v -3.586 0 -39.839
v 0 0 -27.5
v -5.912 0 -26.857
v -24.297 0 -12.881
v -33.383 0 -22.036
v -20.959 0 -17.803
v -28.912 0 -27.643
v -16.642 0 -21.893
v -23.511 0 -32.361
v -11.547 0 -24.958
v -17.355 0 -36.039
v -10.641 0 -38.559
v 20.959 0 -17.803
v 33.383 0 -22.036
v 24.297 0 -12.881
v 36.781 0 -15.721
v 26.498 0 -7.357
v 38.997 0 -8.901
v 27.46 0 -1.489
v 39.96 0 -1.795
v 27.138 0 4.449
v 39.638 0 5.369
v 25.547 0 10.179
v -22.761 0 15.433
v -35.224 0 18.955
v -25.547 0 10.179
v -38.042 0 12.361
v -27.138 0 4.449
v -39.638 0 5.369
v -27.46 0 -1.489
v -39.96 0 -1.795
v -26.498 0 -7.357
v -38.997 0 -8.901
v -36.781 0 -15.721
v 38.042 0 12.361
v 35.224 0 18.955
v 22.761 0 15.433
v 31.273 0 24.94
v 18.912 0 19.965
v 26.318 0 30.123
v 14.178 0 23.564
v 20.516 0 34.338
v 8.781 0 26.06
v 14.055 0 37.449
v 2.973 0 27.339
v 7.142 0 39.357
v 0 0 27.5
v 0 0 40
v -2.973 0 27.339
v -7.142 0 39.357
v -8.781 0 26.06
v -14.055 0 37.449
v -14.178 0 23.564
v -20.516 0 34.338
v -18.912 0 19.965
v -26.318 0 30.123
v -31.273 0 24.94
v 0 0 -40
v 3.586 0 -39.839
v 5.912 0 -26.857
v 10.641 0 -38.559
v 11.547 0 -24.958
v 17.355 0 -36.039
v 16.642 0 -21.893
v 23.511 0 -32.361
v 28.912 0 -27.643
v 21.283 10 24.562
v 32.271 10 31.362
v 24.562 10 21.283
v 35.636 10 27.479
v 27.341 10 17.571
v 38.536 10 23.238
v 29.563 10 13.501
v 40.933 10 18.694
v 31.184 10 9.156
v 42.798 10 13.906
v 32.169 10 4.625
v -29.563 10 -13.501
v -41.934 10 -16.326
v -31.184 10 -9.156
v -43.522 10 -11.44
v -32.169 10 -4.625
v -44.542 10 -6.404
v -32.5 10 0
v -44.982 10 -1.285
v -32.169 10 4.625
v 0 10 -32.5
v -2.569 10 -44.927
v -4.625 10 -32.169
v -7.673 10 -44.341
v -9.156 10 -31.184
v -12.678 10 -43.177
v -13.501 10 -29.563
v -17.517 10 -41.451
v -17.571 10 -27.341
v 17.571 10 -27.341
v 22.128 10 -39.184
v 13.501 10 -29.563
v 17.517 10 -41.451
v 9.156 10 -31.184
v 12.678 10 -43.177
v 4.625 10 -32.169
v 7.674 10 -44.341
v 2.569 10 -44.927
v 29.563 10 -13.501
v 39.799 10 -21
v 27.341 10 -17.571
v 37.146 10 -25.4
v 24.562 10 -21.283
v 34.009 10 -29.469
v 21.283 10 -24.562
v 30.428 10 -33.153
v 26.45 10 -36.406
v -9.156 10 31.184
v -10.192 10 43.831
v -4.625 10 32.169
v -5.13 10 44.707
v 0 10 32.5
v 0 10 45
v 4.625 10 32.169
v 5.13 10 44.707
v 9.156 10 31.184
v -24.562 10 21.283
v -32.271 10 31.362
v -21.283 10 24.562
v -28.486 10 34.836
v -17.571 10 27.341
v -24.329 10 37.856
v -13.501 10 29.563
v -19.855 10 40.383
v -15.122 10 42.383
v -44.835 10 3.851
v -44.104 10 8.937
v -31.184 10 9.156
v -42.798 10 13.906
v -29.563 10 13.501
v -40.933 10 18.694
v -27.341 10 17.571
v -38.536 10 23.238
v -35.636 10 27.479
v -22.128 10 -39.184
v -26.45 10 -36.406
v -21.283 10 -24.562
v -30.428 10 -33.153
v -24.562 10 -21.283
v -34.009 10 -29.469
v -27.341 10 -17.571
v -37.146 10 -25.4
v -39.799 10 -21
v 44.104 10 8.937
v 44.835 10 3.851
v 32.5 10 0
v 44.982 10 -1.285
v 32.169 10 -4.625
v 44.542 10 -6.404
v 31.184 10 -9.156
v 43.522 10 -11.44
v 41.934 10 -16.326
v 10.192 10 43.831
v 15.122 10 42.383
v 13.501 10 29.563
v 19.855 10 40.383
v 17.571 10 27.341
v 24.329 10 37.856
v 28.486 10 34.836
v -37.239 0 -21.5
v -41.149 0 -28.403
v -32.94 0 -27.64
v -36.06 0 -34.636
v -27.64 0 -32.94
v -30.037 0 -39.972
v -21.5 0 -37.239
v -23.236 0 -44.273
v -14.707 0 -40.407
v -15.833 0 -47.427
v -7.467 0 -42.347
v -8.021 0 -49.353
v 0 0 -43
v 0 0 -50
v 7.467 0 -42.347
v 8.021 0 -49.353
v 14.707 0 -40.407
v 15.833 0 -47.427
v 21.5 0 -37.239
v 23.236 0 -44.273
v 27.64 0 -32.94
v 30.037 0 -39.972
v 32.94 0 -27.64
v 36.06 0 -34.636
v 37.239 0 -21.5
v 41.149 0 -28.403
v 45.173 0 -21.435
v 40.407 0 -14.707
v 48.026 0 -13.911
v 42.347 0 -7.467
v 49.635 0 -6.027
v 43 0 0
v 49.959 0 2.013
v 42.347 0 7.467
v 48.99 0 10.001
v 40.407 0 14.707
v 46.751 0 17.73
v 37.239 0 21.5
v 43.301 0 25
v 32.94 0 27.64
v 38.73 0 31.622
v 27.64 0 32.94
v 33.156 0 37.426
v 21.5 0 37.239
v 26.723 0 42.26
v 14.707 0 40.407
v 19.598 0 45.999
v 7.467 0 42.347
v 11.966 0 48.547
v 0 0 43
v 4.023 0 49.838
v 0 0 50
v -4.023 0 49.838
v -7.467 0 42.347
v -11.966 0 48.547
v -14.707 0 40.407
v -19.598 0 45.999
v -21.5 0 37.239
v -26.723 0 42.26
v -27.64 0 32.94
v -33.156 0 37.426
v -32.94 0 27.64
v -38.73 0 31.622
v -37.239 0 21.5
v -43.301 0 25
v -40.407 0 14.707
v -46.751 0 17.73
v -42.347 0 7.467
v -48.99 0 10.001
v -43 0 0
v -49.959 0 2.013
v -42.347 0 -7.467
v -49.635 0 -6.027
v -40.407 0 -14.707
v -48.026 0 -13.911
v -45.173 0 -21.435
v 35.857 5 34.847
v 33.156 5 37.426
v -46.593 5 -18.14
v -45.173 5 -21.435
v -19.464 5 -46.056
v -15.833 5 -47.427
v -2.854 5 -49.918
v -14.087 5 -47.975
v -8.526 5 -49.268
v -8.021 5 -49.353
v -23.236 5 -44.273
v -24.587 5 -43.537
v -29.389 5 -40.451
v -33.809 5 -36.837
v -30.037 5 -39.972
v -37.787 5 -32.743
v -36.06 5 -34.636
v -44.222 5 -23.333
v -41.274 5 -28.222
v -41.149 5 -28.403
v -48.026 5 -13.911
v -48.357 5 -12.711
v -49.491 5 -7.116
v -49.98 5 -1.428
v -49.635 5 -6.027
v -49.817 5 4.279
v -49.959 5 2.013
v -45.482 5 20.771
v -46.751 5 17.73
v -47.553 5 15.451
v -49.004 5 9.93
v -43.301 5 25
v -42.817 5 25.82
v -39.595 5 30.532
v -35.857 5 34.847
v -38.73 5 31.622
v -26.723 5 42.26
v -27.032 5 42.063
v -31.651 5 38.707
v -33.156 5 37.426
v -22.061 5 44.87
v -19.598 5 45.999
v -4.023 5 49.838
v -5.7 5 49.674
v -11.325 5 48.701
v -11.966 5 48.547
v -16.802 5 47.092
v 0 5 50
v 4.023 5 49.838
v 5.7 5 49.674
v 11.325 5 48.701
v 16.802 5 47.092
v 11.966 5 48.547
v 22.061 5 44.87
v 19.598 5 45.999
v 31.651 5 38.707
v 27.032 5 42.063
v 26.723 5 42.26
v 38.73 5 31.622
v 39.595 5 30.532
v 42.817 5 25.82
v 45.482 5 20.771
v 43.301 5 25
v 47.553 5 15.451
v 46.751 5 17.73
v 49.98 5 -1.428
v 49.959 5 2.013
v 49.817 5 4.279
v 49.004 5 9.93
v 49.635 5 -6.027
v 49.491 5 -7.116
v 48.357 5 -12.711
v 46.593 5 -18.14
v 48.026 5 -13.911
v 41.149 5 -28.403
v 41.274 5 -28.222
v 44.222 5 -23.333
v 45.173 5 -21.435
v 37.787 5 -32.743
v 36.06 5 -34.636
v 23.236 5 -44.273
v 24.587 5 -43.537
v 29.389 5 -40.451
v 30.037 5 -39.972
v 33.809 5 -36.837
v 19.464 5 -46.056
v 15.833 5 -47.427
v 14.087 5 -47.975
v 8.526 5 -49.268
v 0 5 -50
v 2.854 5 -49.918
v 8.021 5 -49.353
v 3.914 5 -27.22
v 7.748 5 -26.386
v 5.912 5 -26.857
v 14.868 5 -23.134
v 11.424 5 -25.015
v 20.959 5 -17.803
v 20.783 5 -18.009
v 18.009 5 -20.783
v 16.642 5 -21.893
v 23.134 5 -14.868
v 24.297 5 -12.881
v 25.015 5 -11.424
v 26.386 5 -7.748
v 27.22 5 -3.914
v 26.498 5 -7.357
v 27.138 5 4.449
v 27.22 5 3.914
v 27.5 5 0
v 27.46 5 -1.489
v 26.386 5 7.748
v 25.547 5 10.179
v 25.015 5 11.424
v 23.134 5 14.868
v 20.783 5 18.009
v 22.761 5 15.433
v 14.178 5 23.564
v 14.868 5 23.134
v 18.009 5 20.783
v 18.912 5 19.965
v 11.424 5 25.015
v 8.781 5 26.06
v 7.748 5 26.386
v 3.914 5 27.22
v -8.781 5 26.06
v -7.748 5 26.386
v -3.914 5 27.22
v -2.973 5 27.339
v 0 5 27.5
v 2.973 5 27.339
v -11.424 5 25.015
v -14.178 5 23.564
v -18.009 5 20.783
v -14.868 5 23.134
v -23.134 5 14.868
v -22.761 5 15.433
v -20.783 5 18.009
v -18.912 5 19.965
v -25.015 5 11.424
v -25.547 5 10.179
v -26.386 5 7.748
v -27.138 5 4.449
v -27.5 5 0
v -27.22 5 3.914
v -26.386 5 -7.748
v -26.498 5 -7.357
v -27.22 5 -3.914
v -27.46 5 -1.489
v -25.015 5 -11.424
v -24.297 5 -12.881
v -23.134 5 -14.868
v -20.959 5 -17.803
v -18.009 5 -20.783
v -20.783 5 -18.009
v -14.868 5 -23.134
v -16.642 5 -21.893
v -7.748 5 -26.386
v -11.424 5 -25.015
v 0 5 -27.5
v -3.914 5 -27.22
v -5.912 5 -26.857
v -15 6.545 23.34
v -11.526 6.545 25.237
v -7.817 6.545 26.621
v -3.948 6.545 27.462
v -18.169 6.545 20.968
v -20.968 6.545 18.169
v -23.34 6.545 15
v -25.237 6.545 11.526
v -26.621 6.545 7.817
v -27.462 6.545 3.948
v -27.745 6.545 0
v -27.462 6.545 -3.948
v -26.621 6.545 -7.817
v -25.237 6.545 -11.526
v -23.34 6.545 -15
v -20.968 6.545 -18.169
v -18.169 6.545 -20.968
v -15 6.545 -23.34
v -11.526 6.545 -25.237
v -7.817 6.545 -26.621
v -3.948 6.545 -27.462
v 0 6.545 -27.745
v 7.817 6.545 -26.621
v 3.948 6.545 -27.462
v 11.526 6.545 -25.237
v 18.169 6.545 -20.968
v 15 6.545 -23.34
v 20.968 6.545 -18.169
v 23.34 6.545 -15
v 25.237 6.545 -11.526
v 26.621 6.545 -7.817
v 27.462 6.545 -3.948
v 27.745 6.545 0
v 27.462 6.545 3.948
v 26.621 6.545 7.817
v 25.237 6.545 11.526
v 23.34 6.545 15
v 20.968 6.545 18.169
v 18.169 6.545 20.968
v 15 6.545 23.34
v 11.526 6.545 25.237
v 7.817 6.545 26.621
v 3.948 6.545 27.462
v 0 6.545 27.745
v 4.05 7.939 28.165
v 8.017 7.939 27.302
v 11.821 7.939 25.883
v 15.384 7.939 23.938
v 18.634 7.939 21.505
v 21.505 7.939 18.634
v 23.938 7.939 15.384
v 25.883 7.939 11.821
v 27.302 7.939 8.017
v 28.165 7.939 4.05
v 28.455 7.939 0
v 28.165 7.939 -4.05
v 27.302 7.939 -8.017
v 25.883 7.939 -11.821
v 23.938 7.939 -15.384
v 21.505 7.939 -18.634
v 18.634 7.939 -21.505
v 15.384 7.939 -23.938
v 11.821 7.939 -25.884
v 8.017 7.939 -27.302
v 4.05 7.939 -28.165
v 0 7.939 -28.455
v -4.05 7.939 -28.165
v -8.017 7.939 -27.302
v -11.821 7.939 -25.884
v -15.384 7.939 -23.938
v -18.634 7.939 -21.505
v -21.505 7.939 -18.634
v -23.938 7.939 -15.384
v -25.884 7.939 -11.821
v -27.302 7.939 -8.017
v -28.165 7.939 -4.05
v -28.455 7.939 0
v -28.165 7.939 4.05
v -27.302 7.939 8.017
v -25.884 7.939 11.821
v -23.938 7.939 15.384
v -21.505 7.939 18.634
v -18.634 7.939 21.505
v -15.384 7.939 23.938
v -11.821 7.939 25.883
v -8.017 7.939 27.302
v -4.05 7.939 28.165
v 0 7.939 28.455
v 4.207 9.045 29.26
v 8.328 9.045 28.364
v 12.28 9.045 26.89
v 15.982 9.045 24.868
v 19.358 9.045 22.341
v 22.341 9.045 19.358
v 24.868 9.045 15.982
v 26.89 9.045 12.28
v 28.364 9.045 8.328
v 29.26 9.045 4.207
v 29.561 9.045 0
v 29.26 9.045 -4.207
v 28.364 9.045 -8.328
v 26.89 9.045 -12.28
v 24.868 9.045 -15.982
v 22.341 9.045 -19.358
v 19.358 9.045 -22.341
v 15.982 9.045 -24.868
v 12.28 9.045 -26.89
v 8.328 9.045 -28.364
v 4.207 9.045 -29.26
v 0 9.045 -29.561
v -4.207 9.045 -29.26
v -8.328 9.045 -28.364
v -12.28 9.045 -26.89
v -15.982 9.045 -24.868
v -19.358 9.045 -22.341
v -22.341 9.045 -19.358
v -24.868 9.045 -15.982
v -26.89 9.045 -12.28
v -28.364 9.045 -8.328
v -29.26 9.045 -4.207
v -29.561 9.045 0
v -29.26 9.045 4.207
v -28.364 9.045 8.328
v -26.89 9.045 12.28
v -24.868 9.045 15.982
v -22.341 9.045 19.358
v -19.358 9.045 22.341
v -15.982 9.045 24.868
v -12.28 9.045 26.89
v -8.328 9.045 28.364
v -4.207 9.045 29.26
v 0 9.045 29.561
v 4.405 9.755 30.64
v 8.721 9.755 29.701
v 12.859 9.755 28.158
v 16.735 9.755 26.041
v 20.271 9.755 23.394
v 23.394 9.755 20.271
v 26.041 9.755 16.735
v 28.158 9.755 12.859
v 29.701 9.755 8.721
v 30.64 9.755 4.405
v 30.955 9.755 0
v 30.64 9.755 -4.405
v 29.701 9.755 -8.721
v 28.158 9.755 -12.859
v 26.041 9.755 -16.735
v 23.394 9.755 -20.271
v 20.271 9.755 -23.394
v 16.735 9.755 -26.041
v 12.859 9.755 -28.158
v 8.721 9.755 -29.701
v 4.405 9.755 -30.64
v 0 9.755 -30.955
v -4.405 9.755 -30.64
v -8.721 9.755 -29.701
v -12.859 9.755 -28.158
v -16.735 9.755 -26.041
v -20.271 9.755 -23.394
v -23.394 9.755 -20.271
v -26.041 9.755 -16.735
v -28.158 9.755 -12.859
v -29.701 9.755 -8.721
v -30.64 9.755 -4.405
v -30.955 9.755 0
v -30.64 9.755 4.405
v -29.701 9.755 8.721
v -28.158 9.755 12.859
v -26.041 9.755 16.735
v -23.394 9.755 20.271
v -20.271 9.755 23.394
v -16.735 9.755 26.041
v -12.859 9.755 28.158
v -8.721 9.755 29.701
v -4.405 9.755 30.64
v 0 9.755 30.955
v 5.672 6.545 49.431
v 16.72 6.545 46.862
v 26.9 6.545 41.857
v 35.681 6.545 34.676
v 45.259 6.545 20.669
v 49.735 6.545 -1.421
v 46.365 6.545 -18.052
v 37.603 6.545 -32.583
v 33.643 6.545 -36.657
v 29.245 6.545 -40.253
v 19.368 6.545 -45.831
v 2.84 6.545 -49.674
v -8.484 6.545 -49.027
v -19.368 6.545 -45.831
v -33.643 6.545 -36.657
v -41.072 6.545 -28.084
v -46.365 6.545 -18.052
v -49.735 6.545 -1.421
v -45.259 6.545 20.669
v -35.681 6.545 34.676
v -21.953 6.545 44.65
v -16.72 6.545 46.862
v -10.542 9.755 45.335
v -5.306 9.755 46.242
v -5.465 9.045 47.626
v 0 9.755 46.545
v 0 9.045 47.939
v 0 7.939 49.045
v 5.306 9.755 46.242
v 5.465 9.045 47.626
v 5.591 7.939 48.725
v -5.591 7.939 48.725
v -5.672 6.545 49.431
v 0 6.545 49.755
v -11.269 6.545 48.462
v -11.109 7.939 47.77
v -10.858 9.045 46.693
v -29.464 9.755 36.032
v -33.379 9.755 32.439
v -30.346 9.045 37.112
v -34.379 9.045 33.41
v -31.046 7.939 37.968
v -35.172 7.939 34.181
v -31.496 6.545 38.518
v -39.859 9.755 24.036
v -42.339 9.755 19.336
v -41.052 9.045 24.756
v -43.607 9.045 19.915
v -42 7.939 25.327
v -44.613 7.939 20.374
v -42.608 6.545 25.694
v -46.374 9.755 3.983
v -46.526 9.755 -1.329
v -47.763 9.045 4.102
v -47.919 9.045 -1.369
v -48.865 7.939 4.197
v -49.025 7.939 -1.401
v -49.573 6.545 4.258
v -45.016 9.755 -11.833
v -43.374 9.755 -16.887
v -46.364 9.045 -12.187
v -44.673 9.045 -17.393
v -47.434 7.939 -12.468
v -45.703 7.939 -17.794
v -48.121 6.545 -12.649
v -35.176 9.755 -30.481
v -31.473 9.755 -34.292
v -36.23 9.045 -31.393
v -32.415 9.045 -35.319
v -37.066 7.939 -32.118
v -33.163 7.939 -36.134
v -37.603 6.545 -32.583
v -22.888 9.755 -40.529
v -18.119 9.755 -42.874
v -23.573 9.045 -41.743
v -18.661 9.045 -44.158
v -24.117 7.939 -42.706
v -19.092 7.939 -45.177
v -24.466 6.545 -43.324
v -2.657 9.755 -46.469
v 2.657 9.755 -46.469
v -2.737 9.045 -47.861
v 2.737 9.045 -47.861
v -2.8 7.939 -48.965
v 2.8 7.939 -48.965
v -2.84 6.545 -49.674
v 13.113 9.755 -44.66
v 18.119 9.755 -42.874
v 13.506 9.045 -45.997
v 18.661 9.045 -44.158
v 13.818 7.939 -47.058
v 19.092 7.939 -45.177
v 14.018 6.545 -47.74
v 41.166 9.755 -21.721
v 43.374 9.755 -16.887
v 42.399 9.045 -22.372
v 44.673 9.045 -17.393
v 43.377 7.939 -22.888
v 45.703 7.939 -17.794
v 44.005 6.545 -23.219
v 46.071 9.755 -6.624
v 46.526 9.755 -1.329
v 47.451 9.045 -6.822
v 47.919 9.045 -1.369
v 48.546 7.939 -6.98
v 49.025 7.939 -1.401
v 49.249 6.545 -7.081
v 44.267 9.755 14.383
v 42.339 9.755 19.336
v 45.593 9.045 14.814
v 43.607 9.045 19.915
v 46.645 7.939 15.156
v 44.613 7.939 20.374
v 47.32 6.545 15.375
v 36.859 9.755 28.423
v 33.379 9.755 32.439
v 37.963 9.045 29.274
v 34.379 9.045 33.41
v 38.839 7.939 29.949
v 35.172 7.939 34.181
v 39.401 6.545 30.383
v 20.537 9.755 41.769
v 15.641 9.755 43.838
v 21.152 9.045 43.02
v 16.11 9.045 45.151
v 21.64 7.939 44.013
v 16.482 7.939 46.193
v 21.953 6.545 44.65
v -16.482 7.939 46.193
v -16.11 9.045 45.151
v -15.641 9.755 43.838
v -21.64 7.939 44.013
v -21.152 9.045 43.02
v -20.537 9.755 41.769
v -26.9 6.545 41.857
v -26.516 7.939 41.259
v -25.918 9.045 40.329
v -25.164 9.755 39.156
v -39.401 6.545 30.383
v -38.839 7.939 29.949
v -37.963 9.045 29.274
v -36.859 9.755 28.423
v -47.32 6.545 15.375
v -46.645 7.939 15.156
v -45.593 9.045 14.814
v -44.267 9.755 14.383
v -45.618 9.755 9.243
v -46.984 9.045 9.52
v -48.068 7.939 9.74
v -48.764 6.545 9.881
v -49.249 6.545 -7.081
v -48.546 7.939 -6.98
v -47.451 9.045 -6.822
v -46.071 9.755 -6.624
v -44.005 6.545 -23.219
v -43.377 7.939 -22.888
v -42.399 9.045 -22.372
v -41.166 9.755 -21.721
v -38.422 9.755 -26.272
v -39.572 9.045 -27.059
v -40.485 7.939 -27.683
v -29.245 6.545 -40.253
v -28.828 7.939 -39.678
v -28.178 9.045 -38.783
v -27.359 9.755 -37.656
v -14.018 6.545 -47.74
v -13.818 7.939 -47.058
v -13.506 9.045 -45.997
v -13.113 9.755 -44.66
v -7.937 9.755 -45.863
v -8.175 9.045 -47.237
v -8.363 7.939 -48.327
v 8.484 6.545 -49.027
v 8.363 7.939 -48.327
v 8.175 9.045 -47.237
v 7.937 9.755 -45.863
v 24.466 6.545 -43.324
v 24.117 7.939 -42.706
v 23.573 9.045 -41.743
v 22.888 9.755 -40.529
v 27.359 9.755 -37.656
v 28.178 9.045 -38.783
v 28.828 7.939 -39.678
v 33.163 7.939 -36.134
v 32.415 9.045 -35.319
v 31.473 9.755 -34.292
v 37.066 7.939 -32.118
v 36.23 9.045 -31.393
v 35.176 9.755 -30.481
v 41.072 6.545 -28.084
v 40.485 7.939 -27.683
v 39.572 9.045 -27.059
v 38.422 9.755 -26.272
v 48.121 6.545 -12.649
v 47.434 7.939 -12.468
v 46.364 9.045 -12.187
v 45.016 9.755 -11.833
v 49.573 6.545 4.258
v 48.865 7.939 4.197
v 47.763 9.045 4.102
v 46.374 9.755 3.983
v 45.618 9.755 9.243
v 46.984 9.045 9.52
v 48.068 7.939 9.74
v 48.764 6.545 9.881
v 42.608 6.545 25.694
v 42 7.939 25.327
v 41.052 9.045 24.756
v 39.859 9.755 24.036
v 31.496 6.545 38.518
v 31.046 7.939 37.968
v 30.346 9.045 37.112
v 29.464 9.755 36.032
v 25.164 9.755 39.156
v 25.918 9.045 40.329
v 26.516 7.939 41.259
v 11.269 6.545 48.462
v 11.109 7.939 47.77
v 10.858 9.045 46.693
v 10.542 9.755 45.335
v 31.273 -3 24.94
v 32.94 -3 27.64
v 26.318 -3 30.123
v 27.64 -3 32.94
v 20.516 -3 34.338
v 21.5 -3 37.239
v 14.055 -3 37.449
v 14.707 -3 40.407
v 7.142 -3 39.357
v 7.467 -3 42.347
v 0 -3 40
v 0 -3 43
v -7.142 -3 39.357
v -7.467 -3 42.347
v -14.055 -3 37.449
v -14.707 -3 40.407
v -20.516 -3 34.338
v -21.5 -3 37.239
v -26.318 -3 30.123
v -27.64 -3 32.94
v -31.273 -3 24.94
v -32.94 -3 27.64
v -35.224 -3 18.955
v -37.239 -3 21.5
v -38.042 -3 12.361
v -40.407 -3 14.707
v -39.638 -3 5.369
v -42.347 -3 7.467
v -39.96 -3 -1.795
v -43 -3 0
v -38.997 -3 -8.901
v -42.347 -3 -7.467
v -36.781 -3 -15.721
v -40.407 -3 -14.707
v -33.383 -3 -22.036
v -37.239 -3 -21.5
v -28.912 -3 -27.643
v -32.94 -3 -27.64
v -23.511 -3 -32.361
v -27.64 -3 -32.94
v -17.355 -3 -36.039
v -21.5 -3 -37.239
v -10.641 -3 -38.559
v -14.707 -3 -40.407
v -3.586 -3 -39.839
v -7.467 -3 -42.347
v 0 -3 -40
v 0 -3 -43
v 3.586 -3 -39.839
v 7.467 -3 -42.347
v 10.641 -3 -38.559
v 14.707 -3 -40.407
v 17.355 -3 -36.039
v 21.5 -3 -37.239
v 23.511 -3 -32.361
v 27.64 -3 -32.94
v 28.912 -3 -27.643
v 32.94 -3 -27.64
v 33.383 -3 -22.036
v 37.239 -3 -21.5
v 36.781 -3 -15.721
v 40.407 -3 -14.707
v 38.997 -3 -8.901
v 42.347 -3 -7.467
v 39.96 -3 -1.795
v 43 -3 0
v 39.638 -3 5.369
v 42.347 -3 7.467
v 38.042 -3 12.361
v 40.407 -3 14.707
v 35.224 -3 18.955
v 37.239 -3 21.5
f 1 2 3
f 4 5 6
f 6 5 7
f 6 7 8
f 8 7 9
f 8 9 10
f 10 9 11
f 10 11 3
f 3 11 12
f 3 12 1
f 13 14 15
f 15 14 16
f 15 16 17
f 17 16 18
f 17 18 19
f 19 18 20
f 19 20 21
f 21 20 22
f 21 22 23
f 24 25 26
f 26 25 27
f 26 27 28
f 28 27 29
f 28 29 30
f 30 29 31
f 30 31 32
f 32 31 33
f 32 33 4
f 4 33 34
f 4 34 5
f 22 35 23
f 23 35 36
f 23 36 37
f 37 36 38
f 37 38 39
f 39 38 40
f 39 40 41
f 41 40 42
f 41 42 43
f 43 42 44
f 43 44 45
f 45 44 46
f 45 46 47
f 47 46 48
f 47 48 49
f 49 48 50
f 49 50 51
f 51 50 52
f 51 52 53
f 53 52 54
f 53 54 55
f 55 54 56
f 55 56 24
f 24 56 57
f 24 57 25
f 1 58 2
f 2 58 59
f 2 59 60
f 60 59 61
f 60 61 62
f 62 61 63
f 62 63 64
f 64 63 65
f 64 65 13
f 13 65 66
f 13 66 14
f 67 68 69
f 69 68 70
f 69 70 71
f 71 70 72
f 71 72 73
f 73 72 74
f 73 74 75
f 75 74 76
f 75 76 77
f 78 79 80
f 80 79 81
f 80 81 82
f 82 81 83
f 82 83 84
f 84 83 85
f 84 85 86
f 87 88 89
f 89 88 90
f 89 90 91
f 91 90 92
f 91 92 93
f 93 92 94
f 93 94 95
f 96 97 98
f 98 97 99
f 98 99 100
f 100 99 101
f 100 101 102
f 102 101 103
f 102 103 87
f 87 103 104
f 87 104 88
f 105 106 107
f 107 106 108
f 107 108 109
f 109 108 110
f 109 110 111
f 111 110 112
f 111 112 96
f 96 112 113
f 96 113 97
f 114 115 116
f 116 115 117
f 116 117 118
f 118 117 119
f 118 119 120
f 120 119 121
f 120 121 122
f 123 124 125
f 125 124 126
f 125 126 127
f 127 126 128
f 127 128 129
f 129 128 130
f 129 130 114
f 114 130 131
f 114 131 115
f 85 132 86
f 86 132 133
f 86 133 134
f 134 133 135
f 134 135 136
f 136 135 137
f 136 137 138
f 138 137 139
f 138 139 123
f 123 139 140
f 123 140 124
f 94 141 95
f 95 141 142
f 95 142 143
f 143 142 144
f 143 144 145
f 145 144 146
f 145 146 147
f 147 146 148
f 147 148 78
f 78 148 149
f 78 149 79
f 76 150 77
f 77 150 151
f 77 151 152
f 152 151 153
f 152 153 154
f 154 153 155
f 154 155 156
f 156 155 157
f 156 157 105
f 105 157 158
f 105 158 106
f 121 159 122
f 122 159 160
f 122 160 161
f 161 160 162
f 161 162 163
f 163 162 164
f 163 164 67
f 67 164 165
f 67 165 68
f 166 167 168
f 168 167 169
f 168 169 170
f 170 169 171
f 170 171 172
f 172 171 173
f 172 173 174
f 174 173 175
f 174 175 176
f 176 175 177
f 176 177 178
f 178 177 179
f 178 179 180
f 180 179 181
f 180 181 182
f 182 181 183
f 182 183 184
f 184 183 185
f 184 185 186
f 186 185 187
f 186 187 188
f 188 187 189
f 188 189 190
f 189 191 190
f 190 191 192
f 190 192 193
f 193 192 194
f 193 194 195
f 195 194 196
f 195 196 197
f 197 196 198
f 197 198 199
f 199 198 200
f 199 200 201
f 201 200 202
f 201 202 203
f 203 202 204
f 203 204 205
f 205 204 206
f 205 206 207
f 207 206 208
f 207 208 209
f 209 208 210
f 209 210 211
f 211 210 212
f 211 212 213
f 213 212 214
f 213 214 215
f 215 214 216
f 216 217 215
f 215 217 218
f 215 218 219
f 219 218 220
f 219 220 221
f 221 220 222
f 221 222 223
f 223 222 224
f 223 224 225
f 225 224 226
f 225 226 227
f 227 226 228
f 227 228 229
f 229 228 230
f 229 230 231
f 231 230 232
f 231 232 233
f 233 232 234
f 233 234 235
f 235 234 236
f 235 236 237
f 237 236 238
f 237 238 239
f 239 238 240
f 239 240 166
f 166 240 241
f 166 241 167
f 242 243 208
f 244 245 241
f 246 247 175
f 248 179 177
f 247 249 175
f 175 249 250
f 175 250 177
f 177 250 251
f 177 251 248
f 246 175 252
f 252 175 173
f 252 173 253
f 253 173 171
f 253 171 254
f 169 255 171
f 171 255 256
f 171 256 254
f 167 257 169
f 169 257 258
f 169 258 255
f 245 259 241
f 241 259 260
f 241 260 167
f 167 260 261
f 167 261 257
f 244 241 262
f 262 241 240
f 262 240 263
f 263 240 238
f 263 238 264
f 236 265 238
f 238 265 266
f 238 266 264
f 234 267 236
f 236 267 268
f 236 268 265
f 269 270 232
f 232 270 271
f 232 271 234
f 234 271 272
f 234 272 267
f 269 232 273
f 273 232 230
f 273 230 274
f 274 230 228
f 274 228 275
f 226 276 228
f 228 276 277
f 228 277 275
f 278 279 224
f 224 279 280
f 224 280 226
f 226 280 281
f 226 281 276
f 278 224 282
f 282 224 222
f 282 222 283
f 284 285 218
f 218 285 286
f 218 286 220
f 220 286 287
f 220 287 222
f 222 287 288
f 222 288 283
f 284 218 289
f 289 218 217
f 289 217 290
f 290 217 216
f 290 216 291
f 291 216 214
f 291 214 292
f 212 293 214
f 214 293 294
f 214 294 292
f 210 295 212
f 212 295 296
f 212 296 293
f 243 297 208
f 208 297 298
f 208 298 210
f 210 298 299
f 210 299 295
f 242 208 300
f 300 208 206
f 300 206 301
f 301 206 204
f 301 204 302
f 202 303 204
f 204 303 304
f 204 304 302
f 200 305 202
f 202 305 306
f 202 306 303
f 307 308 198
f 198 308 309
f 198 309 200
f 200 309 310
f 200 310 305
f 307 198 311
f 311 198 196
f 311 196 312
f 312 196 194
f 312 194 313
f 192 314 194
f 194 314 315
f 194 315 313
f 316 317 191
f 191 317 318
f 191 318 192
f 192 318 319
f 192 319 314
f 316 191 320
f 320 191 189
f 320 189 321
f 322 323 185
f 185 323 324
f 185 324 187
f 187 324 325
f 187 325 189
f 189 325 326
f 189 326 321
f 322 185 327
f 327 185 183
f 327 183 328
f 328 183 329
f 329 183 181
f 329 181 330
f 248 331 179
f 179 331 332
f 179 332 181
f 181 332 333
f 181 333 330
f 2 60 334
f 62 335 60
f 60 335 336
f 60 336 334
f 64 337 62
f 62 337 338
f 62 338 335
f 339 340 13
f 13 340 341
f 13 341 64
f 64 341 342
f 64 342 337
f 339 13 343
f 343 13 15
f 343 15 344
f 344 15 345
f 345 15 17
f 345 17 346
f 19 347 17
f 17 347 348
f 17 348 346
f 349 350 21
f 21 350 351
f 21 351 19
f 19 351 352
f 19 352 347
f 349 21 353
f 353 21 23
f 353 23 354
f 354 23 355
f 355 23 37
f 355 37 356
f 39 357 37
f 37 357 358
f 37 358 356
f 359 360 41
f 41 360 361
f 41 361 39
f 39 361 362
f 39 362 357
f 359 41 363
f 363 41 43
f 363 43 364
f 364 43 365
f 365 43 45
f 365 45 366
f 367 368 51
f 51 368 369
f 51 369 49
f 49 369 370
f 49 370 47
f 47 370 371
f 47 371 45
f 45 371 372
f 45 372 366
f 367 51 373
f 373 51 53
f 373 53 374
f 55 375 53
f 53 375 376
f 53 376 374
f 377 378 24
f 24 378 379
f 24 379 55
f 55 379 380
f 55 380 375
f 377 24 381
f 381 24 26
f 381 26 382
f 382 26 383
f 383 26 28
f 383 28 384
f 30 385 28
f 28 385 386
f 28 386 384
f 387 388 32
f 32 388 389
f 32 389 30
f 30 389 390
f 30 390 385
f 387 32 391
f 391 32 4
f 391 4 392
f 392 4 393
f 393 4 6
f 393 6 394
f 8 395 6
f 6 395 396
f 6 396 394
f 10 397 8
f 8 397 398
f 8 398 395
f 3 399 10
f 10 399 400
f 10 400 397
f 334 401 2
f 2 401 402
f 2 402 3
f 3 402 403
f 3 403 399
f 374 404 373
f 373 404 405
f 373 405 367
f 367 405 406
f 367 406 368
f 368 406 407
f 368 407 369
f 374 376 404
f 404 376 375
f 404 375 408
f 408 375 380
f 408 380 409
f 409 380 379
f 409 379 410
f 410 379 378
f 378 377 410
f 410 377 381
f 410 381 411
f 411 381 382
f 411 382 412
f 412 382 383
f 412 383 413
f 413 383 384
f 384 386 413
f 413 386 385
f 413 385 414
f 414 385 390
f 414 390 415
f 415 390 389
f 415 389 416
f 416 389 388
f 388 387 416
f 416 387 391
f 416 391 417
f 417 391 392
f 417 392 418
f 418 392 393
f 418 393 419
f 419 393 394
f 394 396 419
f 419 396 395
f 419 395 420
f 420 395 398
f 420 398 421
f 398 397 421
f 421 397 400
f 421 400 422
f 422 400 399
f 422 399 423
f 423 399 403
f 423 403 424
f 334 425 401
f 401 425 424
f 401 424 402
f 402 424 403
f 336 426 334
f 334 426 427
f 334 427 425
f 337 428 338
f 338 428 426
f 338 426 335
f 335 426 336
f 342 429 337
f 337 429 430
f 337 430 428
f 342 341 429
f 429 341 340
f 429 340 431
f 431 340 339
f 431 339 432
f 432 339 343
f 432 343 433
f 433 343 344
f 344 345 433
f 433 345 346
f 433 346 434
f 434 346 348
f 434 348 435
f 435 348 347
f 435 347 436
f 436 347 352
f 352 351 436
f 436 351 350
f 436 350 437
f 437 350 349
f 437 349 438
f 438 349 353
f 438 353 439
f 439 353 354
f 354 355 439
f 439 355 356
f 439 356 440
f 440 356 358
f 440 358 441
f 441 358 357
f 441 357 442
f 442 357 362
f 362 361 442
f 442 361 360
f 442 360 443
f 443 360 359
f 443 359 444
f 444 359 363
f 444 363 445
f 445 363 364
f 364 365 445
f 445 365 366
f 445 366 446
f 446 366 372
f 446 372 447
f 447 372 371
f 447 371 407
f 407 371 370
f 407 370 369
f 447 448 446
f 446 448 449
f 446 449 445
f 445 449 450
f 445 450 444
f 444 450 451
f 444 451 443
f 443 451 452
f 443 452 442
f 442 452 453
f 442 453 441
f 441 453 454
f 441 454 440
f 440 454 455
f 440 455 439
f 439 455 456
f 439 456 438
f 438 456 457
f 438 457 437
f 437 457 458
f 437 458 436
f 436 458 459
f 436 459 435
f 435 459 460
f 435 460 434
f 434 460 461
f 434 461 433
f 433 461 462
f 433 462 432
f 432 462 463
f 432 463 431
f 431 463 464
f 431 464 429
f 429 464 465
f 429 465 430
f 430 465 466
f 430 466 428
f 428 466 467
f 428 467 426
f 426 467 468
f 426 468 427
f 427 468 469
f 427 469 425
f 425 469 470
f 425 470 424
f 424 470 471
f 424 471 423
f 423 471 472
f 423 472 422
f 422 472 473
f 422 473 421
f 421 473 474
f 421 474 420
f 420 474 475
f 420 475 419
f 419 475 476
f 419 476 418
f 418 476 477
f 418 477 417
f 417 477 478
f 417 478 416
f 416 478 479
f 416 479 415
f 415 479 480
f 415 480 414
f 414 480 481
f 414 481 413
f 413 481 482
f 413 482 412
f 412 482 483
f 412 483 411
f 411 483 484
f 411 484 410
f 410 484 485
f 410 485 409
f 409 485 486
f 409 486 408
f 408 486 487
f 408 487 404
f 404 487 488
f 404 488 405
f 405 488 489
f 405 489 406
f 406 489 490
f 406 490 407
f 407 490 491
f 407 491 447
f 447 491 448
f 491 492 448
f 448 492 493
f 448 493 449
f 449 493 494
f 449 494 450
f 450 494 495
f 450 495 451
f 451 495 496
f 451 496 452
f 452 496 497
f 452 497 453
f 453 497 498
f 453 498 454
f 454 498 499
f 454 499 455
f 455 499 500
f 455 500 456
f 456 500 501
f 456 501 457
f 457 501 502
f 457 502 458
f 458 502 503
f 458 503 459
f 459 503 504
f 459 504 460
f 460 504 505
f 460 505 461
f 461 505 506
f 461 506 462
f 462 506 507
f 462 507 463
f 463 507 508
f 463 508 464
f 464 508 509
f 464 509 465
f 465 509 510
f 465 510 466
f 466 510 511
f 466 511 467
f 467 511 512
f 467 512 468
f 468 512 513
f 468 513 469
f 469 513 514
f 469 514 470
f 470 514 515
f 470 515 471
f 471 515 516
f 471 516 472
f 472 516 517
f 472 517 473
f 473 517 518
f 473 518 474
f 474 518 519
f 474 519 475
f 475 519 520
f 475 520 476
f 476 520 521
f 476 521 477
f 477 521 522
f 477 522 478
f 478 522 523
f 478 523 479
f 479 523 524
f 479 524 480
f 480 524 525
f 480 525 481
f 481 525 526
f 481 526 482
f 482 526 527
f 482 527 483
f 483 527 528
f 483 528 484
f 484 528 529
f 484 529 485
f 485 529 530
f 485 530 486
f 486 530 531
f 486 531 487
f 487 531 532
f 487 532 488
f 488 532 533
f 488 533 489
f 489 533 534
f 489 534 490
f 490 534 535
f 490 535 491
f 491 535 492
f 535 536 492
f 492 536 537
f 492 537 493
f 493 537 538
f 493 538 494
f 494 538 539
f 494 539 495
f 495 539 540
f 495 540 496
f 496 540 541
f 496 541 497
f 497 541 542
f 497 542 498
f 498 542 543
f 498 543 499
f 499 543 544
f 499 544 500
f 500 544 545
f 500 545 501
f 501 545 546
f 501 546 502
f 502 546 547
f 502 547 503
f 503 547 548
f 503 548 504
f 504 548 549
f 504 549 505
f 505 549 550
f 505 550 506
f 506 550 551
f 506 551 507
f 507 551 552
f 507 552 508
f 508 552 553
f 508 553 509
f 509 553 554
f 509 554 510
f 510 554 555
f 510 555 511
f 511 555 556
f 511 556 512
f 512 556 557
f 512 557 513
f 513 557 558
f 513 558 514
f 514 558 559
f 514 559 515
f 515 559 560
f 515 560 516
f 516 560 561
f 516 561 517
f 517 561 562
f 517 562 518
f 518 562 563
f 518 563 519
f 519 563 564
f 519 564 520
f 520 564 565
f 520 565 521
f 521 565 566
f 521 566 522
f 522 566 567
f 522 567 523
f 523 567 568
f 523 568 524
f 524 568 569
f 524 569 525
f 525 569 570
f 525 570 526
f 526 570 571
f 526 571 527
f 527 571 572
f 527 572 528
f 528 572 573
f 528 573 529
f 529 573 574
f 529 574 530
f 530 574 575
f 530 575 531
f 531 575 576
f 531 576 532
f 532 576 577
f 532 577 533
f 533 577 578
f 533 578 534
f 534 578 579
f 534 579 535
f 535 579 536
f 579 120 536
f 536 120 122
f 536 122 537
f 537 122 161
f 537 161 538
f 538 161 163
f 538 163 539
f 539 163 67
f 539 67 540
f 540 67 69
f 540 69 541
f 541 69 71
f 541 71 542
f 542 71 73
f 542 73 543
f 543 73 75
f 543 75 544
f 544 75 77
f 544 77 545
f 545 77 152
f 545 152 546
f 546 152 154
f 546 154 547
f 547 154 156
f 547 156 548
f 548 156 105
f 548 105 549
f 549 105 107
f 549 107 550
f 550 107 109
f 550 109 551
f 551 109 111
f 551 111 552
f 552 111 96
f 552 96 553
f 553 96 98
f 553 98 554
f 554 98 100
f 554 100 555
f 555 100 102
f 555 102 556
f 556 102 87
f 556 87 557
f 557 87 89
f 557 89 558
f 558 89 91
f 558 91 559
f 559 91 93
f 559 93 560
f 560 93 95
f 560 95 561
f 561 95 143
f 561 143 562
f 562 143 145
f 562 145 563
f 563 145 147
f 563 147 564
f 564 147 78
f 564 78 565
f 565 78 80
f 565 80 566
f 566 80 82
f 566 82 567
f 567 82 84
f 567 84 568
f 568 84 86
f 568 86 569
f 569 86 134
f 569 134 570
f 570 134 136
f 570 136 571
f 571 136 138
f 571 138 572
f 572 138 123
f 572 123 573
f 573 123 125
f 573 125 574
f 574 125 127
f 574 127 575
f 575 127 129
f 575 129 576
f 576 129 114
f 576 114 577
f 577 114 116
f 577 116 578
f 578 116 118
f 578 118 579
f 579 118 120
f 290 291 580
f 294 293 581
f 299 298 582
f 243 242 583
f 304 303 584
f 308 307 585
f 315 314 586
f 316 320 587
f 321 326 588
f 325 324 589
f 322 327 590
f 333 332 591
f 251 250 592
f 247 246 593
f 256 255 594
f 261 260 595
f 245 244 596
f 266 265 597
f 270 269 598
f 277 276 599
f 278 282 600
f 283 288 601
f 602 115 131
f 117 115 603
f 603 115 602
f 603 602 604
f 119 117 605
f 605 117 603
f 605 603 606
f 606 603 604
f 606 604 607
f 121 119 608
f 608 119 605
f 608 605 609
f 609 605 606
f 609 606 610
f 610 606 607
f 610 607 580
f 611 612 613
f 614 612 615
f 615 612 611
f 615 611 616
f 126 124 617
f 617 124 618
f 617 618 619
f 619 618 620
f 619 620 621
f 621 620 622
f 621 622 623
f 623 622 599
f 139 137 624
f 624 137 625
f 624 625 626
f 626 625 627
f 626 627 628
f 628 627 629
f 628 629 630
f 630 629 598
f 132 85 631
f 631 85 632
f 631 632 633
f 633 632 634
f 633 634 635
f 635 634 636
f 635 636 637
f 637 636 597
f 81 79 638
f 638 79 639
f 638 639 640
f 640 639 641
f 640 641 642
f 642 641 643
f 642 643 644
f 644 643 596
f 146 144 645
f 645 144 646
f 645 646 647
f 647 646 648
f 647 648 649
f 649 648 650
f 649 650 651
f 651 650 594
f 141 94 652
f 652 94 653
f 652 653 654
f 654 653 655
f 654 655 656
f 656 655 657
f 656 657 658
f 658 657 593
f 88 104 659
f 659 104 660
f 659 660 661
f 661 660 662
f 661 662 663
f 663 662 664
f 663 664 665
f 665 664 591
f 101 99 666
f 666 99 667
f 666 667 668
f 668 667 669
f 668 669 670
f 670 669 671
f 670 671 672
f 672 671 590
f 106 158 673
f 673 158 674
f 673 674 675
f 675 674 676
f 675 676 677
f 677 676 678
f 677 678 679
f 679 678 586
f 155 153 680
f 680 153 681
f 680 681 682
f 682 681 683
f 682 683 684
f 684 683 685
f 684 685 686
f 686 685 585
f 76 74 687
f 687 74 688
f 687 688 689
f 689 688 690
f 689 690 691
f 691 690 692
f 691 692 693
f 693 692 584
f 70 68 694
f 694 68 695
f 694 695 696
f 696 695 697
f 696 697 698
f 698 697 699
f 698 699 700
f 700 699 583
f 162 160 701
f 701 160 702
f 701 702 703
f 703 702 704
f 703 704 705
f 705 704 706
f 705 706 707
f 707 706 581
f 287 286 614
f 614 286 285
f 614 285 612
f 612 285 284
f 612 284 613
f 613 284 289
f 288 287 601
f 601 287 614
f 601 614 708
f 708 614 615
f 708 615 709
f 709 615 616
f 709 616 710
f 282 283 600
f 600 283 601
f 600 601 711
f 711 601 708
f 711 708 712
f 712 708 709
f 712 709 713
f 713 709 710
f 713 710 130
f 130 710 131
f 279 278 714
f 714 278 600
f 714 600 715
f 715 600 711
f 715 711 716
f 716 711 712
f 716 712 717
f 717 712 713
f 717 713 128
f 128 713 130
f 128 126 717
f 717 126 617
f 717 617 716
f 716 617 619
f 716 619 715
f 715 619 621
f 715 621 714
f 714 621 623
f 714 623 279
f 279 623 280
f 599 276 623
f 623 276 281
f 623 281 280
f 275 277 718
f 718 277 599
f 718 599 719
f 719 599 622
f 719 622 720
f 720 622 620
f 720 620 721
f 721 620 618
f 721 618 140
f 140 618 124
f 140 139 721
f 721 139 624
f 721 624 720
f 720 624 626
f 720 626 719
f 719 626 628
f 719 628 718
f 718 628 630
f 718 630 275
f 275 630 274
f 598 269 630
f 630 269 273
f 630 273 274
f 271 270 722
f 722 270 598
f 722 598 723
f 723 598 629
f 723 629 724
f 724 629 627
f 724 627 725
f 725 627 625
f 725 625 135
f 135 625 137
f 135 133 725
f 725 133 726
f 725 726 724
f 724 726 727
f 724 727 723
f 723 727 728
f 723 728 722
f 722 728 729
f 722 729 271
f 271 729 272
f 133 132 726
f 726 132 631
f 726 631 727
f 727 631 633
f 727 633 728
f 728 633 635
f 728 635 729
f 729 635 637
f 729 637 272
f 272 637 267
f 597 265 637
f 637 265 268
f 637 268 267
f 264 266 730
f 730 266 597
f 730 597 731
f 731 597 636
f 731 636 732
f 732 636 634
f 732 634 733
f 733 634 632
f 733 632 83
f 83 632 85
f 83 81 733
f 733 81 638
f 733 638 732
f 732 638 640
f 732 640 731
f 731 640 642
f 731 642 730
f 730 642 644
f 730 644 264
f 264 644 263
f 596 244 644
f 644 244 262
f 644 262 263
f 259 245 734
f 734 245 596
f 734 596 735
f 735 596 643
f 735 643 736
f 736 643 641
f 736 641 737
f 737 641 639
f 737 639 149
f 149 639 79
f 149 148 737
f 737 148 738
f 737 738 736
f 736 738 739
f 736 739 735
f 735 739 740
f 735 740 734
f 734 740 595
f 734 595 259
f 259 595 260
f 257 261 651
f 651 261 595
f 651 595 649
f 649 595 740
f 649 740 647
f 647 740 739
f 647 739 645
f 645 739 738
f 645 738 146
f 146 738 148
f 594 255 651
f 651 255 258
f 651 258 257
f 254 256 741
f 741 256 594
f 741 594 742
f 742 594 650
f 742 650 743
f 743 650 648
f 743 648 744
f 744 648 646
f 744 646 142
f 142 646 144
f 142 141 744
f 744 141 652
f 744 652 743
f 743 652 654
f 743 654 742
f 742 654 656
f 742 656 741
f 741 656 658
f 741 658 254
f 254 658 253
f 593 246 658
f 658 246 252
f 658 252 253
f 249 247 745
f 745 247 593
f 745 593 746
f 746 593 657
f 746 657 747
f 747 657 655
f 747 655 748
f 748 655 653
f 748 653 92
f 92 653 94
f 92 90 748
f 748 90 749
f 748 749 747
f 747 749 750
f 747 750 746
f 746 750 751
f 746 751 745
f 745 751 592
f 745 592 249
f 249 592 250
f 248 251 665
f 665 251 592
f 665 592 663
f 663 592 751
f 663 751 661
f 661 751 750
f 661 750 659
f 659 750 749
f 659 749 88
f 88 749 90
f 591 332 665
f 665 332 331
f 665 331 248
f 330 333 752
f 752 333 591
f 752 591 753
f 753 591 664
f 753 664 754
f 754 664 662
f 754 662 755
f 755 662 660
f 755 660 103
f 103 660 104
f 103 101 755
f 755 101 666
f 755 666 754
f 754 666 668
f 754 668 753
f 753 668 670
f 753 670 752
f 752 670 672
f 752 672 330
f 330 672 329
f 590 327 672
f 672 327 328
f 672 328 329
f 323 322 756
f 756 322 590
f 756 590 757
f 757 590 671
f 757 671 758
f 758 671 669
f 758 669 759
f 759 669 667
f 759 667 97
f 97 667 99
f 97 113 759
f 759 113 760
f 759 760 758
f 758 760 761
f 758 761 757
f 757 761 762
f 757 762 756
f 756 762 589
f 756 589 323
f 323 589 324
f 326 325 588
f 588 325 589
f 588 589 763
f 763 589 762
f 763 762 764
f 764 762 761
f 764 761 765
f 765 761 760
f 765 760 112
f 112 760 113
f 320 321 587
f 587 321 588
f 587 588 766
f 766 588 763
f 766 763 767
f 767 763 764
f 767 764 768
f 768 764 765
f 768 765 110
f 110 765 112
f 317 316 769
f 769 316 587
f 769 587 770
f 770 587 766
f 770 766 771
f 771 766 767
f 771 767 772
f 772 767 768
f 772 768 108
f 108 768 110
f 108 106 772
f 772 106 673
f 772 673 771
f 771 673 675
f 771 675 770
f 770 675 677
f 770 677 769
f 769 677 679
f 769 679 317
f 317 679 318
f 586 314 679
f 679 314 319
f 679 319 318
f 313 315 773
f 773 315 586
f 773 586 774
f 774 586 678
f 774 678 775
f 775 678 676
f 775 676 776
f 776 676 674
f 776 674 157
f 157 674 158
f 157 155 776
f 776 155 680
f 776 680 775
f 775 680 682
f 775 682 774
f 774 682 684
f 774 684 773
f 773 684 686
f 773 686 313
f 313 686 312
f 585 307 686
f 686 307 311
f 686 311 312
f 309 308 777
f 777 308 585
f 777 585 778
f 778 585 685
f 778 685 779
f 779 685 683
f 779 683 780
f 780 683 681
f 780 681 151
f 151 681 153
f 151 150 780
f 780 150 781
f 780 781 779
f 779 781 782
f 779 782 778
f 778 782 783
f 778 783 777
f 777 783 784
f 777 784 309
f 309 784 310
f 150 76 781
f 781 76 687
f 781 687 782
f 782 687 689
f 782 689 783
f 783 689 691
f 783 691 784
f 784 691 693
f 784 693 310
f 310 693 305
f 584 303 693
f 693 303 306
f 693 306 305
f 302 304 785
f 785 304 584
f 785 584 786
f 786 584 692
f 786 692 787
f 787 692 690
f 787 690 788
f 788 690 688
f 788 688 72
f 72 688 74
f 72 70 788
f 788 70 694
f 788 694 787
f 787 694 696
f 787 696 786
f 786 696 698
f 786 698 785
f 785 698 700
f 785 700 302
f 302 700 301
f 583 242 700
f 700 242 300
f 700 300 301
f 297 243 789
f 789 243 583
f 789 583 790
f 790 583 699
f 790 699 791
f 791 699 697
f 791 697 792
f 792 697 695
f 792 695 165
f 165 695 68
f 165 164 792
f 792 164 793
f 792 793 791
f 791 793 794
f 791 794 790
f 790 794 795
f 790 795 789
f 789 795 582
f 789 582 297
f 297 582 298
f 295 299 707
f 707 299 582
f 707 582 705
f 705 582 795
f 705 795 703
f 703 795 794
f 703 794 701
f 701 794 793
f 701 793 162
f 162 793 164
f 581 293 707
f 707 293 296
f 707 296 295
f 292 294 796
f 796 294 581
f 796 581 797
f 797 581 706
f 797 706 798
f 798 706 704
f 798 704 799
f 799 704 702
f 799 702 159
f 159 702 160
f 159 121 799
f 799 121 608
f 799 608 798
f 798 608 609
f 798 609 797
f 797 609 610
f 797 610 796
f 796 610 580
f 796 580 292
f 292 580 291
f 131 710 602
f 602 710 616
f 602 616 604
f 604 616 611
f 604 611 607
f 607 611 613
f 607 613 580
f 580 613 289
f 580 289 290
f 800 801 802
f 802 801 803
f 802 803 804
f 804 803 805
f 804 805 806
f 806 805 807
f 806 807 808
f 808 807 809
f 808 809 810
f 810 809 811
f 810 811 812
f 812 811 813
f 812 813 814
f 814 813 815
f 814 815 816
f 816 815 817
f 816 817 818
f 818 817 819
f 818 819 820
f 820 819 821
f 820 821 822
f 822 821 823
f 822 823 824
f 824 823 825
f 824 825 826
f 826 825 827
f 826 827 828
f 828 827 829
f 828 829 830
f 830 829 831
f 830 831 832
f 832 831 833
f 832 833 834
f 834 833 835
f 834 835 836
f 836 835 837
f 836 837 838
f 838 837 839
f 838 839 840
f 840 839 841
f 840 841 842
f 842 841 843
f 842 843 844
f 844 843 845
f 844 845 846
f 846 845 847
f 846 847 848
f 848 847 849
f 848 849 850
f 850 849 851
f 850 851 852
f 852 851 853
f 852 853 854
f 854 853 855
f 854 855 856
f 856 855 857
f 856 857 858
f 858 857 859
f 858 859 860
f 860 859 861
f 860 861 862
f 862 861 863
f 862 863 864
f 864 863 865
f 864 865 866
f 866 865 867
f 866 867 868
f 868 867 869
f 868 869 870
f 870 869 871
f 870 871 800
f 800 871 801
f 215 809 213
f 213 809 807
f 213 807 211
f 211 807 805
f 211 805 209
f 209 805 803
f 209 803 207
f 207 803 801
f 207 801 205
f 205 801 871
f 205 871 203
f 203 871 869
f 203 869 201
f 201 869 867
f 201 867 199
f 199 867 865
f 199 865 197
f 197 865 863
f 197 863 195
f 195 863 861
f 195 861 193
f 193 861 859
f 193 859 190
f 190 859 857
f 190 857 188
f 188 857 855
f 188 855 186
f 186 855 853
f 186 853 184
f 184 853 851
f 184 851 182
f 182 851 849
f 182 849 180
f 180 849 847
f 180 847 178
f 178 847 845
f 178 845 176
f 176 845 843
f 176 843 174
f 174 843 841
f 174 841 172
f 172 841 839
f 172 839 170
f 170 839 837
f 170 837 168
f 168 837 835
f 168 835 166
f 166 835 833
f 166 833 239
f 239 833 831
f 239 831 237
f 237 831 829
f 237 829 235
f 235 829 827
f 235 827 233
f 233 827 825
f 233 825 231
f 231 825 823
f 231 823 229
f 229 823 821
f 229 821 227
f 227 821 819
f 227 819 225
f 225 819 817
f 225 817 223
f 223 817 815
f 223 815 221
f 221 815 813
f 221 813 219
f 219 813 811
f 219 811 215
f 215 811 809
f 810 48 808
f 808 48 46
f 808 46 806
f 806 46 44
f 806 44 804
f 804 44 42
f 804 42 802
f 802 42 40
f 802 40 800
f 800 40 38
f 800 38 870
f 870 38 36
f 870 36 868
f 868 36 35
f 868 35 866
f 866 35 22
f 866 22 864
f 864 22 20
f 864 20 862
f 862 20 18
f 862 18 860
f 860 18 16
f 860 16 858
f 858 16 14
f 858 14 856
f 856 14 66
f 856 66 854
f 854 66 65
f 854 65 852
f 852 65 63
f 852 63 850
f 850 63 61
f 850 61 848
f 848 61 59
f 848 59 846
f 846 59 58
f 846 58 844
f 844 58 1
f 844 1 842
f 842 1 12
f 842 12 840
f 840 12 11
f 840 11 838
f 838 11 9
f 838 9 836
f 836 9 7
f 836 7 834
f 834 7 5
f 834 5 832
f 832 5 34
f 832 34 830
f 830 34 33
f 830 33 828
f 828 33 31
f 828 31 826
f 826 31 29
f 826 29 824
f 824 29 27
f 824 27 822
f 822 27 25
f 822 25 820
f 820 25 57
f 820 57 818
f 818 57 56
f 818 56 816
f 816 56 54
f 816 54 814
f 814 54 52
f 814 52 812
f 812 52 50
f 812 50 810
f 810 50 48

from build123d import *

# Parameters (mm, degrees)
SKETCH1_R           = 50
SKETCH1_R_2         = 27.5
BOSS_EXTRUDE1_DEPTH = 10
FILLET1_R           = 5
SKETCH2_R           = 43
SKETCH2_R_2         = 40
BOSS_EXTRUDE2_DEPTH = 3


with BuildPart() as part:
    # Sketch1 → Boss-Extrude1 (new body)
    with BuildSketch(Plane(origin=(0, 0, 0), x_dir=(1, 0, 0), z_dir=(0, 1, 0))):
        with Locations(Location((0, 0, 0), (0, 0, 270))):
            Circle(SKETCH1_R)
        with Locations(Location((0, 0, 0), (0, 0, 270))):
            Circle(SKETCH1_R_2, mode=Mode.SUBTRACT)
    extrude(amount=BOSS_EXTRUDE1_DEPTH)

    # Fillet1
    fillet1_edges = [part.edges().sort_by_distance(p)[0] for p in [
        (0, 10, -50),
        (0, 10, -27.5),
    ]]
    fillet(fillet1_edges, radius=FILLET1_R)

    # Sketch2 → Boss-Extrude2 (add)
    with BuildSketch(Plane.XZ):
        with Locations(Location((0, 0, 0), (0, 0, 270))):
            Circle(SKETCH2_R)
        with Locations(Location((0, 0, 0), (0, 0, 270))):
            Circle(SKETCH2_R_2, mode=Mode.SUBTRACT)
    extrude(amount=BOSS_EXTRUDE2_DEPTH)


solid = part.part
